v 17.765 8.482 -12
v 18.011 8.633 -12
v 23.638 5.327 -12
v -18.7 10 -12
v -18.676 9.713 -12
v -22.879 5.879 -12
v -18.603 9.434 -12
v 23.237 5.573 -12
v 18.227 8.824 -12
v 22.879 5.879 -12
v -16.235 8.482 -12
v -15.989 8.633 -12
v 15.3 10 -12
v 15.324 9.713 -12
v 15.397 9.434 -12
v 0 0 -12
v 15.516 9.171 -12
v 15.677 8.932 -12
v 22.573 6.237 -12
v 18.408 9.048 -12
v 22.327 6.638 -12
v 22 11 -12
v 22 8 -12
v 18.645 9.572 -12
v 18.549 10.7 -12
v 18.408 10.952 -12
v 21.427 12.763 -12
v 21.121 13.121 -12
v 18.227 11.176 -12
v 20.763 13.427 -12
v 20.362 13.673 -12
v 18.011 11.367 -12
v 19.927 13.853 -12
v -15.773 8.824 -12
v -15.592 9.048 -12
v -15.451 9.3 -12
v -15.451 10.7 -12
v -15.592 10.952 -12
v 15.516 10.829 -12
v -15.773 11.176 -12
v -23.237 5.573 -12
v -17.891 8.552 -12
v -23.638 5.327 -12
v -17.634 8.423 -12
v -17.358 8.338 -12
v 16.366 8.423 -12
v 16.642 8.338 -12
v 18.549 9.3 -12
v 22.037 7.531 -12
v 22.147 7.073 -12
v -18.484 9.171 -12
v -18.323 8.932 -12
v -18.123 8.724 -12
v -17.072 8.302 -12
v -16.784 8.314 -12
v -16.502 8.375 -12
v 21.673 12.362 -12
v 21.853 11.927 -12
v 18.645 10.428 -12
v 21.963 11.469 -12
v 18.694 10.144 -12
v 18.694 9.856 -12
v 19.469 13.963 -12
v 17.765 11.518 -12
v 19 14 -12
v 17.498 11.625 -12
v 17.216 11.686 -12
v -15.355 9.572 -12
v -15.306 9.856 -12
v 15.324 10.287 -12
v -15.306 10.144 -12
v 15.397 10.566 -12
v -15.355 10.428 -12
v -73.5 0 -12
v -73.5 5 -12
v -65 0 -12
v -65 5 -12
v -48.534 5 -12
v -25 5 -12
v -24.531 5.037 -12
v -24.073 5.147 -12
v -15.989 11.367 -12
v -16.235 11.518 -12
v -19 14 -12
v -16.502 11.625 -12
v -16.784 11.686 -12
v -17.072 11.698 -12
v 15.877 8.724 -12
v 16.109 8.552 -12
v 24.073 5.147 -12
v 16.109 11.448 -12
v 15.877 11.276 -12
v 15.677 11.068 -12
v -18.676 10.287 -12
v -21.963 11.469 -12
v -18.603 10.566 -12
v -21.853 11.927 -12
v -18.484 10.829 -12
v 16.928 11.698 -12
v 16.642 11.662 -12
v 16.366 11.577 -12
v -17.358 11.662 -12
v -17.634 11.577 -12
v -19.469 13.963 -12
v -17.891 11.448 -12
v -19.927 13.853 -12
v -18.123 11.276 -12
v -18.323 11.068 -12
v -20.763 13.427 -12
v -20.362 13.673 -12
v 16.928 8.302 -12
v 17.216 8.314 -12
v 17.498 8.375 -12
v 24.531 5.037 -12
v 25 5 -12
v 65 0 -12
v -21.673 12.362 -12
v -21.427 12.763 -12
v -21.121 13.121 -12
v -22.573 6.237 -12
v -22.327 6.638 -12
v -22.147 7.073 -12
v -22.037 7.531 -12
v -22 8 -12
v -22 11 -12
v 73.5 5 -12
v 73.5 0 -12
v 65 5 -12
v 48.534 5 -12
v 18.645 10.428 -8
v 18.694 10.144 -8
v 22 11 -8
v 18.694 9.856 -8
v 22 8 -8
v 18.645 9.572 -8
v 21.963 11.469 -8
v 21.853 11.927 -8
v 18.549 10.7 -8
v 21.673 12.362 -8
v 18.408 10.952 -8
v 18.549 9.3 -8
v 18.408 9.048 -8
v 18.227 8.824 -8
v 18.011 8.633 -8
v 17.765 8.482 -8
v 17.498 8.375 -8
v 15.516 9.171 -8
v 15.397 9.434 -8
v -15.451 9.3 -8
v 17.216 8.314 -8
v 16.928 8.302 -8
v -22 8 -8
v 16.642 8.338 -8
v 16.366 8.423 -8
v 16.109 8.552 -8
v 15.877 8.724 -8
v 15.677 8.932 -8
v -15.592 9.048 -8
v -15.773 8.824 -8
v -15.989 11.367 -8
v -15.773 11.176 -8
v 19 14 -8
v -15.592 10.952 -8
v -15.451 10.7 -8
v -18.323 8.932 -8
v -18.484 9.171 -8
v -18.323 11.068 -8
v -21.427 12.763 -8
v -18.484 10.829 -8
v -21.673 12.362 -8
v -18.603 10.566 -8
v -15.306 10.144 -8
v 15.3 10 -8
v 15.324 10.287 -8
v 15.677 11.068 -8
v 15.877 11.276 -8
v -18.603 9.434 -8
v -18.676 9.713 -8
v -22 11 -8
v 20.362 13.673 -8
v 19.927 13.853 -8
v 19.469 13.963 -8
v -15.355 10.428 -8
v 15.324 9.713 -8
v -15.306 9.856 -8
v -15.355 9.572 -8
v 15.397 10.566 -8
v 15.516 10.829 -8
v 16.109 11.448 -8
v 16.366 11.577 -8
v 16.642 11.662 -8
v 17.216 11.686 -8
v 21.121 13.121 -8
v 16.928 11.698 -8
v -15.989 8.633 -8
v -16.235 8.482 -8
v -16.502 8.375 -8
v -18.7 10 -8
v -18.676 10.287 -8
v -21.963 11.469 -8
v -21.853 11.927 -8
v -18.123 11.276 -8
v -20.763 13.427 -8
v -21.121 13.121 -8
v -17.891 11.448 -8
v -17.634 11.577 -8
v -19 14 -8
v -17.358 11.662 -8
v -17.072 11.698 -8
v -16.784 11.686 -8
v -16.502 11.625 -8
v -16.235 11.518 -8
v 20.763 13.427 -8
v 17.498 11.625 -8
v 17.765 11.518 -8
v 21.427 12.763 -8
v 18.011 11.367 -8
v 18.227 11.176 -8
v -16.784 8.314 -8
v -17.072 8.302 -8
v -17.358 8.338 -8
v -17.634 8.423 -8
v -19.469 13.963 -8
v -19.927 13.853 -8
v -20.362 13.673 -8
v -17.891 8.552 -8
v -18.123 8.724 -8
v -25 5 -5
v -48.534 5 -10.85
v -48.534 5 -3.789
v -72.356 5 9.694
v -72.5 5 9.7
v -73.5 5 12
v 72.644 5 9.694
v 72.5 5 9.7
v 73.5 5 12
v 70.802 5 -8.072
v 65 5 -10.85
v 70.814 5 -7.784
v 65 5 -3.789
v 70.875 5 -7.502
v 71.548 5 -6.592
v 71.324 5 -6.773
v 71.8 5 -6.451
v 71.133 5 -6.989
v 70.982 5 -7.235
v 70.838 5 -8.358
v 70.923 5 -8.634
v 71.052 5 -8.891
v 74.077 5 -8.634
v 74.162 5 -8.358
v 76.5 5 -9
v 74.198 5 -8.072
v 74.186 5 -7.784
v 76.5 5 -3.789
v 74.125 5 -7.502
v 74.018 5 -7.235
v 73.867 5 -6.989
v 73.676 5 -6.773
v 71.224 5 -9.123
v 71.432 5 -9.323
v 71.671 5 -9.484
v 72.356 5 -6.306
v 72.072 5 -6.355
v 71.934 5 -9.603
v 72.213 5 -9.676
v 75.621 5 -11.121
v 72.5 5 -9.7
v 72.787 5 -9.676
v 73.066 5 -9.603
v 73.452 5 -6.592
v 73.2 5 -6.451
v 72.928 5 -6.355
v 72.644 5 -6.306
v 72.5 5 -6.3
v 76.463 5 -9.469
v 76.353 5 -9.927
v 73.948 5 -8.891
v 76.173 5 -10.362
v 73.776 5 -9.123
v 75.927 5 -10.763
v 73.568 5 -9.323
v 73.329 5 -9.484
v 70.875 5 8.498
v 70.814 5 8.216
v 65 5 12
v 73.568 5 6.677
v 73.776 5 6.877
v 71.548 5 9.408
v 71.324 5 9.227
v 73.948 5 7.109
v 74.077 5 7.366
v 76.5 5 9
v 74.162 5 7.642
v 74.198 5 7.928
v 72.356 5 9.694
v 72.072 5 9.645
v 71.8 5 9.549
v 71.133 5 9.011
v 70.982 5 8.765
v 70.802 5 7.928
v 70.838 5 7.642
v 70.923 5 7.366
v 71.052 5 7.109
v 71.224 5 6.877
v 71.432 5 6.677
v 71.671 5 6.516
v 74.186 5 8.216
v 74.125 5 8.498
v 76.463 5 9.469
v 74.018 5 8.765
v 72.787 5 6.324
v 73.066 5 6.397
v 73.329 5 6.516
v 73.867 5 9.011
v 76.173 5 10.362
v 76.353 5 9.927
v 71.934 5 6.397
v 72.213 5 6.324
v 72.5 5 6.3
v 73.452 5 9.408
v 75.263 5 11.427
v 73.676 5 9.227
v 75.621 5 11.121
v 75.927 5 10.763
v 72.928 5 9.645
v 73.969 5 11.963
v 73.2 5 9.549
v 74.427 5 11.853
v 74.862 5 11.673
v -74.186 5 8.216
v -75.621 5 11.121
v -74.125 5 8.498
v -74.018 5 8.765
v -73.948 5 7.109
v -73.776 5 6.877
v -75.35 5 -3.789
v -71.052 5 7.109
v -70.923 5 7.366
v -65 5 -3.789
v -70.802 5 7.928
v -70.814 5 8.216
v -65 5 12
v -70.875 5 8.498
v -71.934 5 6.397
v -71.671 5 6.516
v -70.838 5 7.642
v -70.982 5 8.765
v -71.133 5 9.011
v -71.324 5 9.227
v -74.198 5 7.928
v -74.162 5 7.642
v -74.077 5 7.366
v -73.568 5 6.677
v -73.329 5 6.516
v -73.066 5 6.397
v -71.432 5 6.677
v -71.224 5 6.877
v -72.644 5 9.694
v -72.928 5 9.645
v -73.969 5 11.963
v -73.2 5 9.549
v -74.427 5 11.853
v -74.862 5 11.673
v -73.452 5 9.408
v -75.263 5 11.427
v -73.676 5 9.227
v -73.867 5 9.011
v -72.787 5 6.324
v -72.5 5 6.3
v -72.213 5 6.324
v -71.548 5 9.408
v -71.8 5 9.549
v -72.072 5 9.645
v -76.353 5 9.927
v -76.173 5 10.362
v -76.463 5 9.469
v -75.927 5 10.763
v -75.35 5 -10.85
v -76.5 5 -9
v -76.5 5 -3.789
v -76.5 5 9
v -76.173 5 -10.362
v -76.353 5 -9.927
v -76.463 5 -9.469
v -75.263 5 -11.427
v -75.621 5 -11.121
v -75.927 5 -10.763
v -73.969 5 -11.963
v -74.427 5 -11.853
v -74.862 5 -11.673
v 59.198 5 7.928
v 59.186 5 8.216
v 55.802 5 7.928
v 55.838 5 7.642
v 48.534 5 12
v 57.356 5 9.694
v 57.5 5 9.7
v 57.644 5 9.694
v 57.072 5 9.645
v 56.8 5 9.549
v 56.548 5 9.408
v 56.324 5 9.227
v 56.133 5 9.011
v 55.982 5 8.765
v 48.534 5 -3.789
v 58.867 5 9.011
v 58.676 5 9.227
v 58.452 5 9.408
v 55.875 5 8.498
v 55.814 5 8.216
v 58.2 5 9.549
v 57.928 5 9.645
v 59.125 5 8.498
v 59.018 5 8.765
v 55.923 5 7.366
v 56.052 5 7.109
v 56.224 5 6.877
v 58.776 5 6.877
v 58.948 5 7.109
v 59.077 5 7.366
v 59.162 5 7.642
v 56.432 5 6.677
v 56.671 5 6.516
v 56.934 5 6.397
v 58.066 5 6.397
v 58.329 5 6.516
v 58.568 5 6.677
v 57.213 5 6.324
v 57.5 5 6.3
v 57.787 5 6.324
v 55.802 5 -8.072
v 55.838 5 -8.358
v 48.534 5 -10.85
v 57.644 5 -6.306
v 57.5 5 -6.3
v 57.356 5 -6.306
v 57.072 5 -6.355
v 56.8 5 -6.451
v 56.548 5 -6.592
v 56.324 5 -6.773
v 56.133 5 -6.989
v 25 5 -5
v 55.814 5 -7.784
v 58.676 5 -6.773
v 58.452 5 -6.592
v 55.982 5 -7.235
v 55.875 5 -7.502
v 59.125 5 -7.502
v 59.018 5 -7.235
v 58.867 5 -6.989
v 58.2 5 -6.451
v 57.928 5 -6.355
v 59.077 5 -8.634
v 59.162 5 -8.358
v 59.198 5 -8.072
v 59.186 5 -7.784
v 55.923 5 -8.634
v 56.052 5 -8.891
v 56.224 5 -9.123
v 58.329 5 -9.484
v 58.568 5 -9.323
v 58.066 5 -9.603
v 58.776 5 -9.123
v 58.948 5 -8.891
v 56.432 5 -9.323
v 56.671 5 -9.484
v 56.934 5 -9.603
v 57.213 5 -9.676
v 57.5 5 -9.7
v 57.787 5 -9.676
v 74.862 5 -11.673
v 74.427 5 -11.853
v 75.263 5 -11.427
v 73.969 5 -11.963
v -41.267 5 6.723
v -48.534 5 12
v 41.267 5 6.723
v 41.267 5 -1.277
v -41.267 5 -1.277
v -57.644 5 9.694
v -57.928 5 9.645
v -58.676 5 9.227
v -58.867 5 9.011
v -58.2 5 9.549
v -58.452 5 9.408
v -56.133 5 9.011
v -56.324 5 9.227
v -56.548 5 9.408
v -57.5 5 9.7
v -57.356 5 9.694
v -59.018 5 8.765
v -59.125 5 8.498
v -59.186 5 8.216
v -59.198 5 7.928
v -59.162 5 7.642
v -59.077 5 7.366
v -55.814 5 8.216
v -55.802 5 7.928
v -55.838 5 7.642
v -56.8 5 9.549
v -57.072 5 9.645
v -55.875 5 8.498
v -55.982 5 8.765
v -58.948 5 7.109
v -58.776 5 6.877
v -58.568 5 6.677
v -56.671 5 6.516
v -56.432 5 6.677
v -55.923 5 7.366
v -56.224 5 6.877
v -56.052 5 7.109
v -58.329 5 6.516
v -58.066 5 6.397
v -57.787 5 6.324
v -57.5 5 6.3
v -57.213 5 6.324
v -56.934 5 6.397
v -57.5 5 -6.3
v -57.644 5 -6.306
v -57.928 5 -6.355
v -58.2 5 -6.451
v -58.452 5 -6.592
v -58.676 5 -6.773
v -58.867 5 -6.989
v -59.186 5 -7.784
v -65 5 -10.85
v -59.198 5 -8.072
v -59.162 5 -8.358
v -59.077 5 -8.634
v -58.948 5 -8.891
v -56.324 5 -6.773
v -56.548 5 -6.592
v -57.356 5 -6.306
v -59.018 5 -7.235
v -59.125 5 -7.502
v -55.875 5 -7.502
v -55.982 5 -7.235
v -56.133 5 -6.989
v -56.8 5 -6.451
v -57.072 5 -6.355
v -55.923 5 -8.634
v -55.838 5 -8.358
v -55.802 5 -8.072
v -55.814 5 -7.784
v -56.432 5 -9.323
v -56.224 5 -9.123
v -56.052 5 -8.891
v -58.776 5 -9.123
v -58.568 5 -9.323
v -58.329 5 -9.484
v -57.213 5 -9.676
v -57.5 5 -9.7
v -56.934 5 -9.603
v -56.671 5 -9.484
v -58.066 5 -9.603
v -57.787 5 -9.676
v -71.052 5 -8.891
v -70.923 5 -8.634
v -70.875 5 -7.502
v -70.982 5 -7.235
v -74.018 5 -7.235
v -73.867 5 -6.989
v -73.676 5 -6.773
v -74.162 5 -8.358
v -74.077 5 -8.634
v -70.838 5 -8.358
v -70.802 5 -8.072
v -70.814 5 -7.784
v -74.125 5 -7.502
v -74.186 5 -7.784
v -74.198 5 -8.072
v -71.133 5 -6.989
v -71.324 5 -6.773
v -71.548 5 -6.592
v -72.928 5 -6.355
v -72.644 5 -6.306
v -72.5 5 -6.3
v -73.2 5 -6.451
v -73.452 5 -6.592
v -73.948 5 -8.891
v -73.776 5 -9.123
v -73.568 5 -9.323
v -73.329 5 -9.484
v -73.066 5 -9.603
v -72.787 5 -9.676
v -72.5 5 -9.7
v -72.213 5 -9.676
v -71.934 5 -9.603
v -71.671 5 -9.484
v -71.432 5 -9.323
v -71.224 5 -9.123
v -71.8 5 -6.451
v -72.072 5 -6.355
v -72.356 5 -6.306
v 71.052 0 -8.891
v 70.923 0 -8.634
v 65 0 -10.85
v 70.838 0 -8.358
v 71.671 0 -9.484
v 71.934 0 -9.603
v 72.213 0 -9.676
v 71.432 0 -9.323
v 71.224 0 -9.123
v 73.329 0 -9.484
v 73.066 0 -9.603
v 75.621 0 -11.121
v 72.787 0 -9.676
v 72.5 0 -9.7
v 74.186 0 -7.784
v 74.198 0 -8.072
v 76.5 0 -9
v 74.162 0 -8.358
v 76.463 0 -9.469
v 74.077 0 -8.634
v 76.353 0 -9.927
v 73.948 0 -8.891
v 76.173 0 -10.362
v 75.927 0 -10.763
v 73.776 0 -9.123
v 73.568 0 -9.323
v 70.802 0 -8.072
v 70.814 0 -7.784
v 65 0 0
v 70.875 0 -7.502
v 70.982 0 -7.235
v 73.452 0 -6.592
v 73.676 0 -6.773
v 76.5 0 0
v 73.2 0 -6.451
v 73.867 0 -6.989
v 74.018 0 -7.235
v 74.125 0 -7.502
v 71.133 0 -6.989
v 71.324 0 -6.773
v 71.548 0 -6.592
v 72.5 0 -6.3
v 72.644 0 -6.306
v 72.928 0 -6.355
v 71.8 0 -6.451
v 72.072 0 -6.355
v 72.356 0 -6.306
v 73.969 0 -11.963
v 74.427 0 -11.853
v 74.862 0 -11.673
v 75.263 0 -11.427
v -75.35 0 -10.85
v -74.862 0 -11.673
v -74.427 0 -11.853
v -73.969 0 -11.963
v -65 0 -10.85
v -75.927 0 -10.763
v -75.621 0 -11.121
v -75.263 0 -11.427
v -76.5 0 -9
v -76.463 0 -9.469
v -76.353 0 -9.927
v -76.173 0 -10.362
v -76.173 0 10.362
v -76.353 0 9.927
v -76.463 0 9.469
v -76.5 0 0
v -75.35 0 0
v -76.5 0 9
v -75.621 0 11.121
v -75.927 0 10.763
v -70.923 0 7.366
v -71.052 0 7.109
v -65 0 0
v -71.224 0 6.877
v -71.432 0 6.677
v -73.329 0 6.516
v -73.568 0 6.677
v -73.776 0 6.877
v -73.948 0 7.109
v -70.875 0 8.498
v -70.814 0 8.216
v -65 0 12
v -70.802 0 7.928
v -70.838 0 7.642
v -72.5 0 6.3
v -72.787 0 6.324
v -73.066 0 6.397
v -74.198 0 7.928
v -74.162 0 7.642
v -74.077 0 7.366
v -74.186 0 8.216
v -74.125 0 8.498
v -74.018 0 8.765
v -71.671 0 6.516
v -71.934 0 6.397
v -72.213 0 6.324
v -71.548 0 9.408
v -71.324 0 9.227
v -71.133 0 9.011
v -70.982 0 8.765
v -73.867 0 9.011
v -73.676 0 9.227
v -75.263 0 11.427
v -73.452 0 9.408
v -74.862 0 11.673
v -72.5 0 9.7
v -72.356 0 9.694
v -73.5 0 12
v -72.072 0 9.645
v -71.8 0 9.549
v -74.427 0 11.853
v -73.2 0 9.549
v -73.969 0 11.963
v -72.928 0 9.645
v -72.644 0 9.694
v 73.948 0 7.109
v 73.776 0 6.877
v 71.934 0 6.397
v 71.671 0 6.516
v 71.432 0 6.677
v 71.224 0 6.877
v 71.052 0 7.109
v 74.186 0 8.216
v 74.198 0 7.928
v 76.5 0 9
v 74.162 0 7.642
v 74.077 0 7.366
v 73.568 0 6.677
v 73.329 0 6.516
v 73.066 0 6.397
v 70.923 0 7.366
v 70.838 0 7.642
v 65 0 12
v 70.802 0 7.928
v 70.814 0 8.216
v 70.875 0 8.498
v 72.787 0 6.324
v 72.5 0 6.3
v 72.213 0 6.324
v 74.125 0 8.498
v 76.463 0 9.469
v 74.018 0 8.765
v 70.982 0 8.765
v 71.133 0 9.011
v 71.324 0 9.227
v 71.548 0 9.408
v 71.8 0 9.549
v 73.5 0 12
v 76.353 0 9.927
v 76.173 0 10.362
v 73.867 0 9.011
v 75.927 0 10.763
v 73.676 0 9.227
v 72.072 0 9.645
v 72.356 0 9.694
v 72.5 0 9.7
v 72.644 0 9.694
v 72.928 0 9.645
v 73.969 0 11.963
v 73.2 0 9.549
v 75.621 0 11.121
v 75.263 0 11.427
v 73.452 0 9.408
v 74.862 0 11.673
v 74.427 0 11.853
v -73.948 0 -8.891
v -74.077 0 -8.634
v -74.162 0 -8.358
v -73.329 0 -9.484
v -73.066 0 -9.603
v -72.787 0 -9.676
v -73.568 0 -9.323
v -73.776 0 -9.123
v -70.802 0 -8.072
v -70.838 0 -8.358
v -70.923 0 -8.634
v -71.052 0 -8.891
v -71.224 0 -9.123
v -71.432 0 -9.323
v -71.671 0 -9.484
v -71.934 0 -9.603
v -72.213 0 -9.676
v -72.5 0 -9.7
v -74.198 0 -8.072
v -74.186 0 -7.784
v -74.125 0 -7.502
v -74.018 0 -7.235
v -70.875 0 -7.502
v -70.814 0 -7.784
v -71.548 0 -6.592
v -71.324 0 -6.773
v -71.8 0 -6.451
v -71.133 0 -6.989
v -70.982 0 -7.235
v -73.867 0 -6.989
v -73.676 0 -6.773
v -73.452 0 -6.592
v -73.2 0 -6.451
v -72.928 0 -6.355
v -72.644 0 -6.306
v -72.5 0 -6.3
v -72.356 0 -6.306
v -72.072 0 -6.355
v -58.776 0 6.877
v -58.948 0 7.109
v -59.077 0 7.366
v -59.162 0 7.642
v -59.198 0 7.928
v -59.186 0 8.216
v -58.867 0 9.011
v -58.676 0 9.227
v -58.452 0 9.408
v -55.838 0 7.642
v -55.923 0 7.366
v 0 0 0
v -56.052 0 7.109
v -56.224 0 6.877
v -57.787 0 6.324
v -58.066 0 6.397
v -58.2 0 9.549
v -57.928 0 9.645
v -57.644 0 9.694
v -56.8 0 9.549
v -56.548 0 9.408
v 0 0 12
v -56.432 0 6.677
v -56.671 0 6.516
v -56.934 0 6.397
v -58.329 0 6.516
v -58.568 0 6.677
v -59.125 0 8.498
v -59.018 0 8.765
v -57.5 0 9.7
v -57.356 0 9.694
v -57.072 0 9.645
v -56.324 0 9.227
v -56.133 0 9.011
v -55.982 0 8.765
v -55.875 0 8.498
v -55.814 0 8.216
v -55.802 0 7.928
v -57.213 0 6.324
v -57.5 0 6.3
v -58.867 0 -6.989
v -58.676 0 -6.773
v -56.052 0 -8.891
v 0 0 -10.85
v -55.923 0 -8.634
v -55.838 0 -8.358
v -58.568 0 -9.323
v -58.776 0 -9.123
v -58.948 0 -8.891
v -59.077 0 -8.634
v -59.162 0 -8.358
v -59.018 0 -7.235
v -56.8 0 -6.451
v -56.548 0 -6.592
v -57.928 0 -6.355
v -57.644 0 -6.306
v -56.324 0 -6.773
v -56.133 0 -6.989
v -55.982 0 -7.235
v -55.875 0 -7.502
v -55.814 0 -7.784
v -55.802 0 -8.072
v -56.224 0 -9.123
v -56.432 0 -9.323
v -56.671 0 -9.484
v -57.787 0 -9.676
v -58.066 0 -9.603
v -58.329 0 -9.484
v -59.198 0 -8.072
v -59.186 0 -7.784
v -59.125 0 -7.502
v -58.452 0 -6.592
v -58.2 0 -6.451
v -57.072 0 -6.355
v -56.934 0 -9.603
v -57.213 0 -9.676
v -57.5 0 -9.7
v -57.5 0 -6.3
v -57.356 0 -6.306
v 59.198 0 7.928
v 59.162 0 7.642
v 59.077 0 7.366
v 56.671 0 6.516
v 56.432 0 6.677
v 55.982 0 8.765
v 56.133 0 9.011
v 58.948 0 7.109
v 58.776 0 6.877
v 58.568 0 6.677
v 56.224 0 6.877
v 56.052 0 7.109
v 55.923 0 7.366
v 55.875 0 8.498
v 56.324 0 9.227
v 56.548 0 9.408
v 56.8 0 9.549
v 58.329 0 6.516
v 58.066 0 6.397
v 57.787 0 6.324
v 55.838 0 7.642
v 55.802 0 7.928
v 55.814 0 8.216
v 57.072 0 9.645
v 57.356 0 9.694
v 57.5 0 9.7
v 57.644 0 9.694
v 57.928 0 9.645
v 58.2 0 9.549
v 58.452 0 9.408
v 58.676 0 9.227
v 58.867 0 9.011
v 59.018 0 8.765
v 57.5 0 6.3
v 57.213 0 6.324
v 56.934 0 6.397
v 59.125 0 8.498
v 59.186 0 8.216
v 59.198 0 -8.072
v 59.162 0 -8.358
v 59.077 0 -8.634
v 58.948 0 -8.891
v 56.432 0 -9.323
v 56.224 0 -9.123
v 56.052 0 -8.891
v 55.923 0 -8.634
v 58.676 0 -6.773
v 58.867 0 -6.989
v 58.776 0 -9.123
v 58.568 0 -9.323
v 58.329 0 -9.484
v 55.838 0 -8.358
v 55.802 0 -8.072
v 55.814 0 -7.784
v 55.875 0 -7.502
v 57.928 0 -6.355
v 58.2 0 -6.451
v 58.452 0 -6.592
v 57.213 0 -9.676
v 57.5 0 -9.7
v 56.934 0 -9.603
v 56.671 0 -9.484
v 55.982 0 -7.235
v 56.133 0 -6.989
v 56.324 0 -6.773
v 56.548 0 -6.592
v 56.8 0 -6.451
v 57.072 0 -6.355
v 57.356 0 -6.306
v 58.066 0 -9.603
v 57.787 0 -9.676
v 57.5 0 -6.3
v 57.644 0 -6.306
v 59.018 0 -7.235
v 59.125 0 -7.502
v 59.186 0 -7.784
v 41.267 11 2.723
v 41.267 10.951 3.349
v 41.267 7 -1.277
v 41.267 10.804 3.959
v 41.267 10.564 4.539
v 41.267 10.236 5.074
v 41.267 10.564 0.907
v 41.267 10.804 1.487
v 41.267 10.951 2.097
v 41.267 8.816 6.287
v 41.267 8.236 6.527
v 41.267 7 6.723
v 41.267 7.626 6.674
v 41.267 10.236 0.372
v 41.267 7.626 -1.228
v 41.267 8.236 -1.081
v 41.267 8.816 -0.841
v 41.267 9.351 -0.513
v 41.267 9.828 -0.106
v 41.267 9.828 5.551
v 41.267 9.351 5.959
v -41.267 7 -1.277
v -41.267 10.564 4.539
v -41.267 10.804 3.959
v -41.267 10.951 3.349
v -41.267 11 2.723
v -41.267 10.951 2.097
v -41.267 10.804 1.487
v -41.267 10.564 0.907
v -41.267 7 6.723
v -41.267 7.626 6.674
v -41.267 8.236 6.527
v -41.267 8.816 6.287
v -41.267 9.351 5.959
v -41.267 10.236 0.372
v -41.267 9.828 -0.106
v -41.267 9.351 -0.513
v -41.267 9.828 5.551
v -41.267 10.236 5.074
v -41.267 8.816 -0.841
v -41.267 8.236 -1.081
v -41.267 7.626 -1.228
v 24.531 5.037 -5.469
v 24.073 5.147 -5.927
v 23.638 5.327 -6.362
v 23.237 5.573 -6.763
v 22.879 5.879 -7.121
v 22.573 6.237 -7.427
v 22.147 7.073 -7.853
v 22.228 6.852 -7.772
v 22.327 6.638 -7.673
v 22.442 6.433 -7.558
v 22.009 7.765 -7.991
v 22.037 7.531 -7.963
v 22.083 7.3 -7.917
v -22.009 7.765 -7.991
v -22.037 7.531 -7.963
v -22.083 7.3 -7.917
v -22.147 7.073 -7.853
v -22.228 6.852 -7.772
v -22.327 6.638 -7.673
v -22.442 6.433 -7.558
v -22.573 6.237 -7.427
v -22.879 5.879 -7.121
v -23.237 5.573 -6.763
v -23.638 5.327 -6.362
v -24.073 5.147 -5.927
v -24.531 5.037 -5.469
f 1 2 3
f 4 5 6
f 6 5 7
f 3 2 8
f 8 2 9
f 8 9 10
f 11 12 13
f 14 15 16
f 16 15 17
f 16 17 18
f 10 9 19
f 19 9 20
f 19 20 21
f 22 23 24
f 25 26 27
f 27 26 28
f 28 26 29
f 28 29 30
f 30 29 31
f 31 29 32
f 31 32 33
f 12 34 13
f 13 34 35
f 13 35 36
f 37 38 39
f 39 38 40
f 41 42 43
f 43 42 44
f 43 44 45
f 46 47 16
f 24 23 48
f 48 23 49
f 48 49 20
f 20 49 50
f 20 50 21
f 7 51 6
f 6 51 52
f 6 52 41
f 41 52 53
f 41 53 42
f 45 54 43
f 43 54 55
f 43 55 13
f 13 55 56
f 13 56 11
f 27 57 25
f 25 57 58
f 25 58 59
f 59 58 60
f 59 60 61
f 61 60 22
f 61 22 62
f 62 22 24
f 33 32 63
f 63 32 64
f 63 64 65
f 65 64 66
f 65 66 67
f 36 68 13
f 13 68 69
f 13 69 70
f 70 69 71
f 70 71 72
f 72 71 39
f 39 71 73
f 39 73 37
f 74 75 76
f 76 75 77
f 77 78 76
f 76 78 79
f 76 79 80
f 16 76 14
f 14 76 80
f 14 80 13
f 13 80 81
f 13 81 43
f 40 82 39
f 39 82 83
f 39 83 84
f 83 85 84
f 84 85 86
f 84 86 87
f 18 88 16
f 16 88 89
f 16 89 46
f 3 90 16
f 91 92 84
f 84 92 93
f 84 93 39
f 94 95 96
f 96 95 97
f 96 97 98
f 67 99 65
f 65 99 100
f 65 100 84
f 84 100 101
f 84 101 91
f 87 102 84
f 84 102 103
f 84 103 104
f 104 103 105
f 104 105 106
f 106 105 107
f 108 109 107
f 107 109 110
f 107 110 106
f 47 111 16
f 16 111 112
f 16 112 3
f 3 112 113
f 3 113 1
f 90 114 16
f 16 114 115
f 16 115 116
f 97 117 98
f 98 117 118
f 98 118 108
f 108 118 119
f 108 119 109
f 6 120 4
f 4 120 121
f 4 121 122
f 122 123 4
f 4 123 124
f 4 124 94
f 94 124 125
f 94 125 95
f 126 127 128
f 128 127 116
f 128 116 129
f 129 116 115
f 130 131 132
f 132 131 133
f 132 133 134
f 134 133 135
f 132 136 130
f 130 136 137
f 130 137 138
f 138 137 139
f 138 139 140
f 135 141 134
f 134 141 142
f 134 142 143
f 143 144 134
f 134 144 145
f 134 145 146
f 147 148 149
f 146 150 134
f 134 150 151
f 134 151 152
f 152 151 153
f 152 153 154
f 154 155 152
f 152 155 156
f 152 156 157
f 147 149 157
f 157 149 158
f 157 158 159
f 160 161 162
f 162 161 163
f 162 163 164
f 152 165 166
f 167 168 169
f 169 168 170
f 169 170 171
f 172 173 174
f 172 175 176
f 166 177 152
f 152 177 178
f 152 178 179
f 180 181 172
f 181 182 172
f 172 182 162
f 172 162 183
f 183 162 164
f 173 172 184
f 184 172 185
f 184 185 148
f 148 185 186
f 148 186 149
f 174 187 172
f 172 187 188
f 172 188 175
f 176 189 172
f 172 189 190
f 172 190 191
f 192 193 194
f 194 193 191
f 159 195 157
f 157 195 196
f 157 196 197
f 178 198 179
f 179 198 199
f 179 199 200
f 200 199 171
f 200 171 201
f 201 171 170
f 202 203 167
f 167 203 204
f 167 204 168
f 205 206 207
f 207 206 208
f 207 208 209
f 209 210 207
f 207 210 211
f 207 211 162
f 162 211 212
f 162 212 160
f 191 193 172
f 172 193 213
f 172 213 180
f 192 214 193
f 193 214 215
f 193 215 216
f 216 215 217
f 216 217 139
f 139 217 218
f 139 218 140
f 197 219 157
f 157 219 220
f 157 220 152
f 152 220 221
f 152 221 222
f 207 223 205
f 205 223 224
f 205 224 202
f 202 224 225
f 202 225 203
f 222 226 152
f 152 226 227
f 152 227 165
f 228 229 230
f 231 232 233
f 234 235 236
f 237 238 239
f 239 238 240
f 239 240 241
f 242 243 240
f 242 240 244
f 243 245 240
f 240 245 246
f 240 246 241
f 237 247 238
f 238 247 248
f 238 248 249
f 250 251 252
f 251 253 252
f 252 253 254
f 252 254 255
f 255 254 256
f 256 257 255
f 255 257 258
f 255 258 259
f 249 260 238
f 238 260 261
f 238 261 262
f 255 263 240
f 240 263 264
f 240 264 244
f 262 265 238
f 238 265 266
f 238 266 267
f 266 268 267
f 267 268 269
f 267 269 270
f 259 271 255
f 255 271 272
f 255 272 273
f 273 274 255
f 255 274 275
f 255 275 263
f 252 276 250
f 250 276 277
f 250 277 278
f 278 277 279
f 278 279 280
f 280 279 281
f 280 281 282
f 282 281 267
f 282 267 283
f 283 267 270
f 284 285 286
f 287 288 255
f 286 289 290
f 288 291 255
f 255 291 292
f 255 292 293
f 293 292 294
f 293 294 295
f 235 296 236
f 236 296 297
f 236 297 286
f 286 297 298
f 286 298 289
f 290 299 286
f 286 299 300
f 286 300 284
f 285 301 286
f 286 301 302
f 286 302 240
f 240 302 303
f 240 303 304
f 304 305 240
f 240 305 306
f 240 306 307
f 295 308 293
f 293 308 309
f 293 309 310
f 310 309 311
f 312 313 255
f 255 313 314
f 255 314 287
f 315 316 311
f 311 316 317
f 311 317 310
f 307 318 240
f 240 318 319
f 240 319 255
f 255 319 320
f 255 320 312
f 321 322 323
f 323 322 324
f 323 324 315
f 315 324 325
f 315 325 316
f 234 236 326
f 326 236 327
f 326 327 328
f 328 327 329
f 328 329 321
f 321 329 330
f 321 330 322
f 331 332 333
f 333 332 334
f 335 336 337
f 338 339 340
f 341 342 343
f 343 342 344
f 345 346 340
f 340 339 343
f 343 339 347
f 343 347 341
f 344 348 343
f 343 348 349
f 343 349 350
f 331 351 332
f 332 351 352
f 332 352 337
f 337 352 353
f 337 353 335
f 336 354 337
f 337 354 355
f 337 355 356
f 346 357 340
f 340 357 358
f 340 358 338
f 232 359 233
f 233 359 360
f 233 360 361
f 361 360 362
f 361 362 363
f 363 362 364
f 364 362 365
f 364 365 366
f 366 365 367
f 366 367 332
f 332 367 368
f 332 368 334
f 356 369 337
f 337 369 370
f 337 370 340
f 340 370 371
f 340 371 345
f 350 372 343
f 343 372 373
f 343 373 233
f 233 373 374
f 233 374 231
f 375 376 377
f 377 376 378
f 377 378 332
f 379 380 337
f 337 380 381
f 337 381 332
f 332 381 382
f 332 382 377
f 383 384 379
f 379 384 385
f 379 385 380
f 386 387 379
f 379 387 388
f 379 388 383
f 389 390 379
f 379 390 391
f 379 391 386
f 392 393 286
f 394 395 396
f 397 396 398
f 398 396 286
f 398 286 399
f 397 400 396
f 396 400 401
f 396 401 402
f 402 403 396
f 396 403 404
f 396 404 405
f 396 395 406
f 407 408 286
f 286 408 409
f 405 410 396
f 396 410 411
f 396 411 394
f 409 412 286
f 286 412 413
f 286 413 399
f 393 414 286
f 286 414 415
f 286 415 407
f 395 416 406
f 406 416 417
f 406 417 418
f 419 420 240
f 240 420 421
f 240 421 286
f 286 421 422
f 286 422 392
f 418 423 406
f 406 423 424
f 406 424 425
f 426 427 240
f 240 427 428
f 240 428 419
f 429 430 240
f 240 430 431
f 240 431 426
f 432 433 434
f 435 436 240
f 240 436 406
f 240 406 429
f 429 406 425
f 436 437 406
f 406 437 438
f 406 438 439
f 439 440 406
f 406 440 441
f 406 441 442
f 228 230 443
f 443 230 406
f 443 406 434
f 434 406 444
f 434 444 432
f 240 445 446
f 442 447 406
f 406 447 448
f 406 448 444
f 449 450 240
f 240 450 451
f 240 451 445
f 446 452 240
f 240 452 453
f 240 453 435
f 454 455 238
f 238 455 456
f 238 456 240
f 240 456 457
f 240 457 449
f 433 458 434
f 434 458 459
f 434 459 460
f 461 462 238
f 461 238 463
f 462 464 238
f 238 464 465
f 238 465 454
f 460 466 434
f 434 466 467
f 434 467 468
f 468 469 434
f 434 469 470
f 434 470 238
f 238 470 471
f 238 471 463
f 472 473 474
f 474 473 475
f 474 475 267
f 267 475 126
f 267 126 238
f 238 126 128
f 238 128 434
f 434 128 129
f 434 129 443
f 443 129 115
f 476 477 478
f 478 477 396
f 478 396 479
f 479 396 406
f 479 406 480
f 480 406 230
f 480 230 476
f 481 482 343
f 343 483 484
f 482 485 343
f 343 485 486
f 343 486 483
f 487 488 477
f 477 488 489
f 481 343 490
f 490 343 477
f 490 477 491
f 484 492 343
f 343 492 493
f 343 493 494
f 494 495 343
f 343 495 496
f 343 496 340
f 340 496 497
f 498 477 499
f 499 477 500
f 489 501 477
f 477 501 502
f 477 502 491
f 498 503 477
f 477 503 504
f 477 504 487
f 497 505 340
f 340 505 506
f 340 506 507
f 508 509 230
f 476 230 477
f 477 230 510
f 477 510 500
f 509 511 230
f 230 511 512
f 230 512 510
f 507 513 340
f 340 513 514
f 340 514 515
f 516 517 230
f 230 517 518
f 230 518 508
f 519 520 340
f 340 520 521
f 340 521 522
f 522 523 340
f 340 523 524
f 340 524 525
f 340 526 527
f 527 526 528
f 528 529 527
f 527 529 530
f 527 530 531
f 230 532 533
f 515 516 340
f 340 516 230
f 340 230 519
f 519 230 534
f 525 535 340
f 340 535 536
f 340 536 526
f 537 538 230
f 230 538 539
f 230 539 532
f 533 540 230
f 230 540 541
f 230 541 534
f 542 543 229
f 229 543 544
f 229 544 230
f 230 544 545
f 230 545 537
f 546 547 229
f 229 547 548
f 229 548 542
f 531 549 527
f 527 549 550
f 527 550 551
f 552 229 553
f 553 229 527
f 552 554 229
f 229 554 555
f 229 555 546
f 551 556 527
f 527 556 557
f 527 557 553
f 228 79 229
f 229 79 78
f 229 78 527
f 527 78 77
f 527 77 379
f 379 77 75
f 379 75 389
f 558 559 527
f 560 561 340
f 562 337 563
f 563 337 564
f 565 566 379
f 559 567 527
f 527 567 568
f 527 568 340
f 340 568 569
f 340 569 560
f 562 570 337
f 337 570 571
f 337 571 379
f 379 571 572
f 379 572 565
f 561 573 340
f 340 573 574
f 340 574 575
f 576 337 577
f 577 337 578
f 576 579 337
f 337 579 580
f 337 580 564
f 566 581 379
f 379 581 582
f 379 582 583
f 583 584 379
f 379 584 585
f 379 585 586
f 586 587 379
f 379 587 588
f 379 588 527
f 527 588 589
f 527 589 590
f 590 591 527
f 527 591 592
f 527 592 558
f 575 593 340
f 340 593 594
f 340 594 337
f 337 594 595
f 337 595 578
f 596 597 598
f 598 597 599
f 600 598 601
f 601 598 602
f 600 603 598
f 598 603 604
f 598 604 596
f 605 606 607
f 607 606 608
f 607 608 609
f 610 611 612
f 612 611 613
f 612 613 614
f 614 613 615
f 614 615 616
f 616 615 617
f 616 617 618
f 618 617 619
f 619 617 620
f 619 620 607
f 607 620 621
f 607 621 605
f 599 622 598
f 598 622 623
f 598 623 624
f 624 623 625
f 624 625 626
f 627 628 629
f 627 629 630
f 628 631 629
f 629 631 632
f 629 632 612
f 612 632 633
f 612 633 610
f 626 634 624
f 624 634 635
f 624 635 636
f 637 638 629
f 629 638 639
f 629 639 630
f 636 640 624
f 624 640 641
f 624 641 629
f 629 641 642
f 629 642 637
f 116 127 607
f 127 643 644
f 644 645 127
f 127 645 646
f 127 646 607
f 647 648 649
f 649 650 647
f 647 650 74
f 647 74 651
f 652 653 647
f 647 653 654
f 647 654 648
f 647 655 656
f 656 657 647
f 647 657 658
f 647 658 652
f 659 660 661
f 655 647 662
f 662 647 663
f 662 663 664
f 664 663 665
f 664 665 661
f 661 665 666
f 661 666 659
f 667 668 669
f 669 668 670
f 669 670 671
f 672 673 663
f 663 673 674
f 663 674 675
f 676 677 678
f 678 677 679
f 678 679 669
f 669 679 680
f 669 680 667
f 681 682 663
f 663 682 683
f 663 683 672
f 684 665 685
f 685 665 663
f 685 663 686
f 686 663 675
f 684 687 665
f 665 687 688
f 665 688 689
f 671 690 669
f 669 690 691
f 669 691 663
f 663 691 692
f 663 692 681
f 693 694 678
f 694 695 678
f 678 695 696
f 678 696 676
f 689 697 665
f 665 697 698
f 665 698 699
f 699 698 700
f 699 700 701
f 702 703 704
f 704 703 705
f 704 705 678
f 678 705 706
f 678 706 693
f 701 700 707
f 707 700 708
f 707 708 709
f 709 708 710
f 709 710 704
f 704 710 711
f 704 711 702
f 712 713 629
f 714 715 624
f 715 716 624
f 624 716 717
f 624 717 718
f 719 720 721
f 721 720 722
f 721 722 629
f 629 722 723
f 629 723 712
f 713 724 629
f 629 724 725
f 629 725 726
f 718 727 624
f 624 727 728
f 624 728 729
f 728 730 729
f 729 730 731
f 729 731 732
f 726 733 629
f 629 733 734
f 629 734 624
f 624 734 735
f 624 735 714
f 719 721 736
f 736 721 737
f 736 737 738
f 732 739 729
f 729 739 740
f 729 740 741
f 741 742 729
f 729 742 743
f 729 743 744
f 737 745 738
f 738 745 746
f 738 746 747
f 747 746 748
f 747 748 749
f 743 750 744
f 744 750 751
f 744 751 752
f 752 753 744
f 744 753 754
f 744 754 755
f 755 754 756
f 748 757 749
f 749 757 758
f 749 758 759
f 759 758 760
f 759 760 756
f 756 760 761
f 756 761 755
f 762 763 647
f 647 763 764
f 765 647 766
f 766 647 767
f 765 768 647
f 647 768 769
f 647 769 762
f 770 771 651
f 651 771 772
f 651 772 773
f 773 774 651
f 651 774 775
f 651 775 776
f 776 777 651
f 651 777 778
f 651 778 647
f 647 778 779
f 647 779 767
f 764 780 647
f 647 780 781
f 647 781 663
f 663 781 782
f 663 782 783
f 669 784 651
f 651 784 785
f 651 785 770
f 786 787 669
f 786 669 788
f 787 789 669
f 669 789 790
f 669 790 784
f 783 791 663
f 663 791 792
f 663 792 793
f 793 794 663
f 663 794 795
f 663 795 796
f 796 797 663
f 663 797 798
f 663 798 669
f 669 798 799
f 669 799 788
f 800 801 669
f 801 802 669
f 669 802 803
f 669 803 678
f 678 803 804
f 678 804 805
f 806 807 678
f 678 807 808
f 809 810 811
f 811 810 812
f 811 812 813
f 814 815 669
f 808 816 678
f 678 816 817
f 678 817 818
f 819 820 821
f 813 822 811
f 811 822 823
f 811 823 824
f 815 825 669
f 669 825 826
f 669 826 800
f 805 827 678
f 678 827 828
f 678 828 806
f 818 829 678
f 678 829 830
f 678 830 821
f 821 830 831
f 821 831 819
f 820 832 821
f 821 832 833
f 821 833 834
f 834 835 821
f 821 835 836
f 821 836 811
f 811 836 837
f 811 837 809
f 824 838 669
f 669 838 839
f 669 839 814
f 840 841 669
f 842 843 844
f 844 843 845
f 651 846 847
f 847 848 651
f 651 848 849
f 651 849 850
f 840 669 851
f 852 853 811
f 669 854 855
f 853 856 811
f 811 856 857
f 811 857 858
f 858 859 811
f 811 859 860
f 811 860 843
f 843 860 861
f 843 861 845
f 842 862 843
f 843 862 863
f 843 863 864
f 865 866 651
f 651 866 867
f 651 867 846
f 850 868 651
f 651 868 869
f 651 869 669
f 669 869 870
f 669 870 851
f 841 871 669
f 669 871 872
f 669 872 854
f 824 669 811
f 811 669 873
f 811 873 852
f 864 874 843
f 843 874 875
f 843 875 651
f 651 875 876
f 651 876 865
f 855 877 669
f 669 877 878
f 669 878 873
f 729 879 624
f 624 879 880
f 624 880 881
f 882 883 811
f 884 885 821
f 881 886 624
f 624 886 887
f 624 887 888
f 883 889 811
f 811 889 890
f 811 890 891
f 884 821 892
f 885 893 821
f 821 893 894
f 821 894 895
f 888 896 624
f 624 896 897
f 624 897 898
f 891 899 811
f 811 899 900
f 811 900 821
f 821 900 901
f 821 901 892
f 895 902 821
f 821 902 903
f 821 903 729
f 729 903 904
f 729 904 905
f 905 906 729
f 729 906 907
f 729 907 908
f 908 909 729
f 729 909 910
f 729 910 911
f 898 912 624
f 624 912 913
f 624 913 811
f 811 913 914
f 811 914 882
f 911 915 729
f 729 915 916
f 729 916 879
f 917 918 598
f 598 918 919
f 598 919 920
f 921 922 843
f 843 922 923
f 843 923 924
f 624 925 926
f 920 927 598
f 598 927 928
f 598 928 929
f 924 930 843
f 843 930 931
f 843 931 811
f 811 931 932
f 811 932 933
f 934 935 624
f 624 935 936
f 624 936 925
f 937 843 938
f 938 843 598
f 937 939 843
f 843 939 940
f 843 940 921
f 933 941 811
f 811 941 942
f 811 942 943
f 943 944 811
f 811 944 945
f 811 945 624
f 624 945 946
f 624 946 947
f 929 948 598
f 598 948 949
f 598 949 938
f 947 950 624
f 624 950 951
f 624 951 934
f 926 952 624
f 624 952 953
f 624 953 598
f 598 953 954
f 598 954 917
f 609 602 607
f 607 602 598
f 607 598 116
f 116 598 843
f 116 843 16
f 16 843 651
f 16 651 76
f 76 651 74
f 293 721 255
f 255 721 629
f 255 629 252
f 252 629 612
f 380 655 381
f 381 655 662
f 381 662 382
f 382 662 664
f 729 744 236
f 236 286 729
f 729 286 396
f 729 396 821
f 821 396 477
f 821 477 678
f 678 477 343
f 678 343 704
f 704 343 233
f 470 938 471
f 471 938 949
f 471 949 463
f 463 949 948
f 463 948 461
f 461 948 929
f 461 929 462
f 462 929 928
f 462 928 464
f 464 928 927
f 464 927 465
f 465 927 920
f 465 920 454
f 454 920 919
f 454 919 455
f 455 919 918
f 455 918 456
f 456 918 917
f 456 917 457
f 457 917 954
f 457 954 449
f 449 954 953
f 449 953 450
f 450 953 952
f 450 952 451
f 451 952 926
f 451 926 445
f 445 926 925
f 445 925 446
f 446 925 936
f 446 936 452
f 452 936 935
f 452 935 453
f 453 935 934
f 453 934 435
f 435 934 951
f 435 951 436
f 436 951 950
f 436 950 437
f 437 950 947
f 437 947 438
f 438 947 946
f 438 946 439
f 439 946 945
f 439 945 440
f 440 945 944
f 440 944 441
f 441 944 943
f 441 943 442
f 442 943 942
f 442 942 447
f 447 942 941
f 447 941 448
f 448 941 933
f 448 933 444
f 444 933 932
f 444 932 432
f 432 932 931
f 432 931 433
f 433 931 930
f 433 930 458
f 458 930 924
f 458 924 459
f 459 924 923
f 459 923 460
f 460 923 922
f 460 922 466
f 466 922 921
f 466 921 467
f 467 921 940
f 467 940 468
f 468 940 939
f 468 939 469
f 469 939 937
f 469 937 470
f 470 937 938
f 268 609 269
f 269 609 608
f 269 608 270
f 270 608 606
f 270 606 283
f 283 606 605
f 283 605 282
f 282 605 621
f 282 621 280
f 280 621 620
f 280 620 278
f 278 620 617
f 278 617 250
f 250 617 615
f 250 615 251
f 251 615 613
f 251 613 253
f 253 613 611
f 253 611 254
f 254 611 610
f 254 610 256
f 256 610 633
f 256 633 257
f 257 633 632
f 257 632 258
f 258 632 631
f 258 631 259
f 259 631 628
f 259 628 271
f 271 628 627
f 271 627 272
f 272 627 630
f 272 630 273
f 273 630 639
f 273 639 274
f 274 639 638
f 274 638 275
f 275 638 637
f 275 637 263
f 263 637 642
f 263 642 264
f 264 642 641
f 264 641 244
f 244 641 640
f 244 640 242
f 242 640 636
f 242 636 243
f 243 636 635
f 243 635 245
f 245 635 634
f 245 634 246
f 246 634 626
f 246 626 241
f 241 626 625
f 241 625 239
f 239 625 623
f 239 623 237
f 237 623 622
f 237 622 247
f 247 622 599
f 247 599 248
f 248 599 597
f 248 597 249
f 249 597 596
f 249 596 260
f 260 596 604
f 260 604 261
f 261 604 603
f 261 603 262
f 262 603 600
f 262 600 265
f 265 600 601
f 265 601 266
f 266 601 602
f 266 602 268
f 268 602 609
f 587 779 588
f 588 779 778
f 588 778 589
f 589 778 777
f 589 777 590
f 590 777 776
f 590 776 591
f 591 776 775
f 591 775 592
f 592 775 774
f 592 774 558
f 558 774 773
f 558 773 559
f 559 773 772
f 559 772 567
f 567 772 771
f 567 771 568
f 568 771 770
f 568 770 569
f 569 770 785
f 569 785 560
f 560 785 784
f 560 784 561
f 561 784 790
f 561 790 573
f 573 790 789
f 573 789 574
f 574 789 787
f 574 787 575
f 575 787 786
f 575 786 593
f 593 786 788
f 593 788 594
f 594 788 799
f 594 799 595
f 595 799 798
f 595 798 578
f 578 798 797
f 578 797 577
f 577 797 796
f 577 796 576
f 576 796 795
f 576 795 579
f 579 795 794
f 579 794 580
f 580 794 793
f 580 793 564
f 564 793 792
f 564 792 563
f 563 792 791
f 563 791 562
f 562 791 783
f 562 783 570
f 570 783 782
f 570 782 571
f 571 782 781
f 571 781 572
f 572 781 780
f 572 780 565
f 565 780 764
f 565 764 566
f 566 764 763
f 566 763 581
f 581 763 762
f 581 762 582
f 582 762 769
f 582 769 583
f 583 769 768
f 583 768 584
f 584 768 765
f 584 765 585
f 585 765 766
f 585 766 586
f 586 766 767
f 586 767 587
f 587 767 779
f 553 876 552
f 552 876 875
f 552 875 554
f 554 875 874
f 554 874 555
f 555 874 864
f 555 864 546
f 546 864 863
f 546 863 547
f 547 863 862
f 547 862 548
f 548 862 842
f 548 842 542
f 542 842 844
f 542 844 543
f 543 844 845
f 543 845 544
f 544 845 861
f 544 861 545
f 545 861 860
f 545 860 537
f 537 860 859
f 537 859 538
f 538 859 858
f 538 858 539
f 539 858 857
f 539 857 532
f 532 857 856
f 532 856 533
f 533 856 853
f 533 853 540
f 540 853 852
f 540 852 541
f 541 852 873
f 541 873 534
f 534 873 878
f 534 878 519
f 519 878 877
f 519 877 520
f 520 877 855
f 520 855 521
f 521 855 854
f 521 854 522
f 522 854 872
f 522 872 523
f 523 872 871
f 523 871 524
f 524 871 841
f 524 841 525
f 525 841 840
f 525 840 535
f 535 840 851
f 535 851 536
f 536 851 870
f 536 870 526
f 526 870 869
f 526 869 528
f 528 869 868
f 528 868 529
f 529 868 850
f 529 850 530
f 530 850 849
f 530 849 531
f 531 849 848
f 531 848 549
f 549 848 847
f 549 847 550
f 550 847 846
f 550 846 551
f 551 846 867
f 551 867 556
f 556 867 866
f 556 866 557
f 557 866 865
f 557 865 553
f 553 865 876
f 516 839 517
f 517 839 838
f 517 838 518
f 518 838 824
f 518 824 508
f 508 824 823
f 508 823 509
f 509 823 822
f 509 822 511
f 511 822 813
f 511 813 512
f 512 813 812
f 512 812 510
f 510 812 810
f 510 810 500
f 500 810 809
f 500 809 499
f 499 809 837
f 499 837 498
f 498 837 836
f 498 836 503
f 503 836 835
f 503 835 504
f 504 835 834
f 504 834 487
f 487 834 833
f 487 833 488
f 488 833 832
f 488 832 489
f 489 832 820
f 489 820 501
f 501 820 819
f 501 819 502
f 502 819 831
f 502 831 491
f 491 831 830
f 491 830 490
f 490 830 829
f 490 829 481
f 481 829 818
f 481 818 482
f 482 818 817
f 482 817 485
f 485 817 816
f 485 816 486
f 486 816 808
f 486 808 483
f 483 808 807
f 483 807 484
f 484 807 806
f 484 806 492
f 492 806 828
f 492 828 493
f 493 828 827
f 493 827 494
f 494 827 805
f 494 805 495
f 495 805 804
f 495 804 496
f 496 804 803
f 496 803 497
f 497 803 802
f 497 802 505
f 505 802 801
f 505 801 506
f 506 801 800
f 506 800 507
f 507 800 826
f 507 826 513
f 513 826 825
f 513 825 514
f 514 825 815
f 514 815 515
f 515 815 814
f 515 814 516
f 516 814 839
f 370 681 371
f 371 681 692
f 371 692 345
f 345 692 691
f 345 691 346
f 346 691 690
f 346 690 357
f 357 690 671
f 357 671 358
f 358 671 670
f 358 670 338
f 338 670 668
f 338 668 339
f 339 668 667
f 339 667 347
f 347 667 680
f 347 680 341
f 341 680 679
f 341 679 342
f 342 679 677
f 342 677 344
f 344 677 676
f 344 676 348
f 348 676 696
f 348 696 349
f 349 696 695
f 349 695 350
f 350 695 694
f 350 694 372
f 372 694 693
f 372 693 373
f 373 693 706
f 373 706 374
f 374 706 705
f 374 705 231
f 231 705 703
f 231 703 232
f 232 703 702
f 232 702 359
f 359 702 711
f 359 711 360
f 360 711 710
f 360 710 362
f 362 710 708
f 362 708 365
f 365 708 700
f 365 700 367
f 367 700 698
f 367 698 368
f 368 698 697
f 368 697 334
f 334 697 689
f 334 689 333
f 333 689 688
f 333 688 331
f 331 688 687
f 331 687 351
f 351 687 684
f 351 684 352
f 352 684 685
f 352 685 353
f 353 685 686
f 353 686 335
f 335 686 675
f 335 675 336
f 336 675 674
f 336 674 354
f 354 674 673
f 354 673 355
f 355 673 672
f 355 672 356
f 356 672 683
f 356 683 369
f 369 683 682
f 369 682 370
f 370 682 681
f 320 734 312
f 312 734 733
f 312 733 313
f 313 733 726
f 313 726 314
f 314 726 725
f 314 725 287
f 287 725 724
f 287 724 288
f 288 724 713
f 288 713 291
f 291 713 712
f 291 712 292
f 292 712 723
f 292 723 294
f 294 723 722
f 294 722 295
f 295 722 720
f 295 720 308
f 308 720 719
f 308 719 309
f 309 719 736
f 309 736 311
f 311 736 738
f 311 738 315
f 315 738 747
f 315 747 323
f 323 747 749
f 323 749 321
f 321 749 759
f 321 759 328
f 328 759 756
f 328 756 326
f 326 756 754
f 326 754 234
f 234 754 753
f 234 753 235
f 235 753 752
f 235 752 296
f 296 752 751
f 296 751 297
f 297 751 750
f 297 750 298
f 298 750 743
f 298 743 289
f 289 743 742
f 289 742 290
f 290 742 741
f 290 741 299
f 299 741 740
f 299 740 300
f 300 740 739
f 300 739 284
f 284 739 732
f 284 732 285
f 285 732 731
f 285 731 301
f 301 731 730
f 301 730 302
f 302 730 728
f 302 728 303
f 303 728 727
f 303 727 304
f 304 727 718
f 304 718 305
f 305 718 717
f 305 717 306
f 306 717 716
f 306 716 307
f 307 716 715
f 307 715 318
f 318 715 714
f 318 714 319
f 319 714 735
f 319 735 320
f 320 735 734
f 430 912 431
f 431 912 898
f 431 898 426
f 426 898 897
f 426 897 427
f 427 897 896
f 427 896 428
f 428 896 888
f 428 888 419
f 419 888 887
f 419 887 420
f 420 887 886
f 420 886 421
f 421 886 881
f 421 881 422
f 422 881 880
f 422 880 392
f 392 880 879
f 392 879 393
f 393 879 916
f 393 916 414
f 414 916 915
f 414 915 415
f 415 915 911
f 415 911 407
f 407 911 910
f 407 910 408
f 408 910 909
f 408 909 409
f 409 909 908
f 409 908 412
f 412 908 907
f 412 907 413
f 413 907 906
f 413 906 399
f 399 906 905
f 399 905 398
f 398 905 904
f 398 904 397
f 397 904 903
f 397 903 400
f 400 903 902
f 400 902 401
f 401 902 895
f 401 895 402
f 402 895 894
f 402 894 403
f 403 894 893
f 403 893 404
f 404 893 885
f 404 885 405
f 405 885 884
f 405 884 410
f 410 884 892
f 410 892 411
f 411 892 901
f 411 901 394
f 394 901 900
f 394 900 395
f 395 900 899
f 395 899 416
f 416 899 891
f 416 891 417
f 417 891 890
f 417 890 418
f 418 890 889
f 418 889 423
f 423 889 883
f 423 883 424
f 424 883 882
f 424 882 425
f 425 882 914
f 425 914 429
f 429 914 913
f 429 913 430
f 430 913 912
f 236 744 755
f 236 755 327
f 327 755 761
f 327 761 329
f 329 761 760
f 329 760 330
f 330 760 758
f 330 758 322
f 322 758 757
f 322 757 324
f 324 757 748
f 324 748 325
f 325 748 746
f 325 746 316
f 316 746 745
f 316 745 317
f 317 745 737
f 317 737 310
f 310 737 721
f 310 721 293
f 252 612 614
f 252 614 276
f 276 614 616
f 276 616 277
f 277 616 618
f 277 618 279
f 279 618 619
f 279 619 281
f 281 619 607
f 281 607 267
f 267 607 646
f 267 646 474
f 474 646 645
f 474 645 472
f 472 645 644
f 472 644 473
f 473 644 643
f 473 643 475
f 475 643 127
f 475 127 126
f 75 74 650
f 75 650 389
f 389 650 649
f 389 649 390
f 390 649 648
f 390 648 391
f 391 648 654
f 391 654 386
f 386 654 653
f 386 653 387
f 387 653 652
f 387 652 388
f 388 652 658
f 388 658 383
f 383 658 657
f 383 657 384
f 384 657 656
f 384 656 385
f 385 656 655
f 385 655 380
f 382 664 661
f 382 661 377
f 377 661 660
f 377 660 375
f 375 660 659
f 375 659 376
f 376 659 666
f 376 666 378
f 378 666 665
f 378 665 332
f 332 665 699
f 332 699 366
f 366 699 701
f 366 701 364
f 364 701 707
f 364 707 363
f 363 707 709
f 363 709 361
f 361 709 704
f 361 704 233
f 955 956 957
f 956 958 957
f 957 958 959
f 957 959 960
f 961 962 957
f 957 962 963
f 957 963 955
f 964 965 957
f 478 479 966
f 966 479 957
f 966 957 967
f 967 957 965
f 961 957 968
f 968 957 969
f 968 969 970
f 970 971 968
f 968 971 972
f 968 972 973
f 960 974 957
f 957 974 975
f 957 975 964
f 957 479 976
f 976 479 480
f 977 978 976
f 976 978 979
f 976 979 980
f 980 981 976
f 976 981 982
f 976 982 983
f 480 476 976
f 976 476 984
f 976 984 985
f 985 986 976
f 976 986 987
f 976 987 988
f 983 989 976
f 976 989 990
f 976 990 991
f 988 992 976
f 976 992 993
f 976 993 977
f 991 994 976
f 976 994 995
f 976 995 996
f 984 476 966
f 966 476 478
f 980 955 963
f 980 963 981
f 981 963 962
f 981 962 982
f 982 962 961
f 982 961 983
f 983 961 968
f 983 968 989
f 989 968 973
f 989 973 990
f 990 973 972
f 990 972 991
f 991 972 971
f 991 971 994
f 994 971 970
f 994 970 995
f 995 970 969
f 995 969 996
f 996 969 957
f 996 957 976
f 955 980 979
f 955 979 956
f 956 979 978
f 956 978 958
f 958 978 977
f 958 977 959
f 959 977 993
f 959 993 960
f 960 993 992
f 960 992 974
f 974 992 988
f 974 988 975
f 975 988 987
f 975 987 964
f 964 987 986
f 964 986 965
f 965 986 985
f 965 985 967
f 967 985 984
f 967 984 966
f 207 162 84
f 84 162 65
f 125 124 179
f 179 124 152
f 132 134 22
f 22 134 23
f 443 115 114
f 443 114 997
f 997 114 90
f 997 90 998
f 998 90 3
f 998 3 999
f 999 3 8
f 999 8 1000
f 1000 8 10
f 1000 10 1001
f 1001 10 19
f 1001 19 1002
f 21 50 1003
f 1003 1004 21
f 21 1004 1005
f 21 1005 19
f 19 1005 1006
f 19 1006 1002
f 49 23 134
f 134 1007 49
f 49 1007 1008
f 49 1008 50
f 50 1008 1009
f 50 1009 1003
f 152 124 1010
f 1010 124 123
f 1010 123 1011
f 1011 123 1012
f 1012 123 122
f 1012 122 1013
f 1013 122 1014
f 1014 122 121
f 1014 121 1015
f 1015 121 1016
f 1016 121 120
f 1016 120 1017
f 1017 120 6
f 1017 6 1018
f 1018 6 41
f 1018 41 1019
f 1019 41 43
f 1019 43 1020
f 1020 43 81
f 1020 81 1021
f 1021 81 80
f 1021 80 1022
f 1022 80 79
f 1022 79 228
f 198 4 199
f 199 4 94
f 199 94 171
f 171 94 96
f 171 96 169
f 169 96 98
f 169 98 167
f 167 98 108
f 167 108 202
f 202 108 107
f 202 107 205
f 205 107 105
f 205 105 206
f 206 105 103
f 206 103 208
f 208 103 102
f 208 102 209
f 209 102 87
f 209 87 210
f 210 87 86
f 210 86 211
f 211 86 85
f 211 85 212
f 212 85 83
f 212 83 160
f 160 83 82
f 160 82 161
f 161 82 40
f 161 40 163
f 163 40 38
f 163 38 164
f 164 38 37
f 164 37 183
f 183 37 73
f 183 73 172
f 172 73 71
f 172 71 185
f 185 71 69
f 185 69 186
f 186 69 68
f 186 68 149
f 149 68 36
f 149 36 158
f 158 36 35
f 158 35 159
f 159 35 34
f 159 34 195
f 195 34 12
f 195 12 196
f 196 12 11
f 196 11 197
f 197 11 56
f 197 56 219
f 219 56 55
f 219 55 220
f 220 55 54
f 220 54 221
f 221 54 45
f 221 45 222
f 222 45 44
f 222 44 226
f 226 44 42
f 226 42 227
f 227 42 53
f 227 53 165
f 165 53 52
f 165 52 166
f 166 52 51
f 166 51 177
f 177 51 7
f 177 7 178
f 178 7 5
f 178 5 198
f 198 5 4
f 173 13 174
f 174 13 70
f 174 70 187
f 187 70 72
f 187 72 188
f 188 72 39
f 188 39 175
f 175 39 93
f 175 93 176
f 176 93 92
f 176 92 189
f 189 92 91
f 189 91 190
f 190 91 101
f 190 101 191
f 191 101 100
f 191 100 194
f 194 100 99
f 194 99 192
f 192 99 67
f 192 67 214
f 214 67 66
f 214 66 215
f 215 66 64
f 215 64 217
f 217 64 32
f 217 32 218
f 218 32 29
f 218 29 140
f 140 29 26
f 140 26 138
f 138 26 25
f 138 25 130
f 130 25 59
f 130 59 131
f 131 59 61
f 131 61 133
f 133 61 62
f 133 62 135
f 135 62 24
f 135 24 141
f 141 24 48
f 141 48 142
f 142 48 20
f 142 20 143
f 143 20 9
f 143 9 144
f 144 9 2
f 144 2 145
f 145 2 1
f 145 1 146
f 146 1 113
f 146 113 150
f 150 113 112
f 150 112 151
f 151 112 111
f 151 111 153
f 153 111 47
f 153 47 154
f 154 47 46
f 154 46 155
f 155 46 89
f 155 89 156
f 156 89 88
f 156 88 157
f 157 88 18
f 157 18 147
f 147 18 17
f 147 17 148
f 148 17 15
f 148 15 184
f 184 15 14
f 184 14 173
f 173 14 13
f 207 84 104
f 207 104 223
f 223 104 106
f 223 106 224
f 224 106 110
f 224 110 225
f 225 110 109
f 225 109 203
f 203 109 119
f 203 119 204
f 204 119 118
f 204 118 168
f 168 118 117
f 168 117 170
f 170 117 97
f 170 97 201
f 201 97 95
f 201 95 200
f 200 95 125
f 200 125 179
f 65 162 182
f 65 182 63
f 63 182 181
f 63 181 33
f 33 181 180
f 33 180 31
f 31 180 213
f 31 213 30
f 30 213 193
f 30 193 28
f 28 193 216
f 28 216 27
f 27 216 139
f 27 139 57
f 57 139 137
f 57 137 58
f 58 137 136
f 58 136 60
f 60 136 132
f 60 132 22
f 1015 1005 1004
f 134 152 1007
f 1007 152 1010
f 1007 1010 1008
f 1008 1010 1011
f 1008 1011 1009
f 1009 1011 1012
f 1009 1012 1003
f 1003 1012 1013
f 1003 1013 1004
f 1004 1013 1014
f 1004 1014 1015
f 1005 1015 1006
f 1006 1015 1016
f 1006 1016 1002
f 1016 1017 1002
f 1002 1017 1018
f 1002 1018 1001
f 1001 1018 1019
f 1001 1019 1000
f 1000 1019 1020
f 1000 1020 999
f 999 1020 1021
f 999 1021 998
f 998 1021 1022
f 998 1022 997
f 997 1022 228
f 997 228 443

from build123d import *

# Parameters (mm, degrees)
SKETCH1_R           = 1.7
BOSS_EXTRUDE1_DEPTH = 5
FILLET1_R           = 3
SKETCH2_W           = 82.534528382
SKETCH2_H           = 8
BOSS_EXTRUDE2_DEPTH = 6
FILLET2_R           = 4
SKETCH3_W           = 22
SKETCH3_H           = 9
BOSS_EXTRUDE3_DEPTH = 4
FILLET3_R           = 3
SKETCH4_R           = 1.7
CUT_EXTRUDE2_DEPTH  = 4
FILLET4_R           = 3
FILLET5_R           = 3


with BuildPart() as part:
    # Sketch1 → Boss-Extrude1 (new body)
    with BuildSketch(Plane(origin=(0, 0, 0), x_dir=(1, 0, 0), z_dir=(0, 1, 0))):
        Polygon((-76.5, -12), (-53.5, -12), (53.5, -12), (76.5, -12), (76.5, 12), (53.5, 12), (-53.5, 12), (-76.5, 12), align=None)
        with Locations(Location((-72.5, 8, 0), (0, 0, 270))):
            Circle(SKETCH1_R, mode=Mode.SUBTRACT)
        with Locations(Location((-57.5, 8, 0), (0, 0, 270))):
            Circle(SKETCH1_R, mode=Mode.SUBTRACT)
        with Locations(Location((-57.5, -8, 0), (0, 0, 270))):
            Circle(SKETCH1_R, mode=Mode.SUBTRACT)
        with Locations(Location((-72.5, -8, 0), (0, 0, 270))):
            Circle(SKETCH1_R, mode=Mode.SUBTRACT)
        with Locations(Location((57.5, 8, 0), (0, 0, 270))):
            Circle(SKETCH1_R, mode=Mode.SUBTRACT)
        with Locations(Location((72.5, 8, 0), (0, 0, 270))):
            Circle(SKETCH1_R, mode=Mode.SUBTRACT)
        with Locations(Location((72.5, -8, 0), (0, 0, 270))):
            Circle(SKETCH1_R, mode=Mode.SUBTRACT)
        with Locations(Location((57.5, -8, 0), (0, 0, 270))):
            Circle(SKETCH1_R, mode=Mode.SUBTRACT)
    extrude(amount=BOSS_EXTRUDE1_DEPTH)

    # Fillet1
    fillet1_edges = [part.edges().sort_by_distance(p)[0] for p in [
        (-76.5, 2.5, 12),
        (-76.5, 2.5, -12),
        (76.5, 2.5, -12),
        (76.5, 2.5, 12),
    ]]
    fillet(fillet1_edges, radius=FILLET1_R)

    # Sketch2 → Boss-Extrude2 (add)
    with BuildSketch(Plane(origin=(0, 5, 0), x_dir=(1, 0, 0), z_dir=(0, 1, 0))):
        with Locations((0, -2.722781506)):
            Rectangle(SKETCH2_W, SKETCH2_H)
    extrude(amount=BOSS_EXTRUDE2_DEPTH)

    # Fillet2
    fillet2_edges = [part.edges().sort_by_distance(p)[0] for p in [
        (0, 11, 6.722781506),
        (0, 11, -1.277218494),
    ]]
    fillet(fillet2_edges, radius=FILLET2_R - 0.0001)  # a hair under: the kernel refuses the full size

    # Sketch3 → Boss-Extrude3 (add)
    with BuildSketch(Plane(origin=(0, 0, -12), x_dir=(-1, 0, 0), z_dir=(0, 0, -1))):
        with Locations((-11, 9.5)):
            Rectangle(SKETCH3_W, SKETCH3_H)
        with Locations((11, 9.5)):
            Rectangle(SKETCH3_W, SKETCH3_H)
    extrude(amount=-BOSS_EXTRUDE3_DEPTH)

    # Fillet3
    fillet3_edges = [part.edges().sort_by_distance(p)[0] for p in [
        (-22, 5, -10),
        (22, 5, -10),
    ]]
    fillet(fillet3_edges, radius=FILLET3_R)

    # Sketch4 → Cut-Extrude2 (cut)
    with BuildSketch(Plane(origin=(0, 0, -12), x_dir=(-1, 0, 0), z_dir=(0, 0, -1))):
        with BuildLine():
            ThreePointArc((-15.3, 10), (-15.797918472, 11.202081528), (-17, 11.7))
            Line((-17, 11.7), (-17, 10))
            Line((-17, 10), (-18.7, 10))
            ThreePointArc((-18.7, 10), (-17, 8.3), (-15.3, 10))
        make_face()
        with BuildLine():
            Line((-17, 10), (-17, 11.7))
            ThreePointArc((-17, 11.7), (-18.202081528, 11.202081528), (-18.7, 10))
            Line((-18.7, 10), (-17, 10))
        make_face()
        with Locations((17, 10)):
            Circle(SKETCH4_R)
    extrude(amount=-CUT_EXTRUDE2_DEPTH, mode=Mode.SUBTRACT)

    # Fillet4
    fillet4_edges = [part.edges().sort_by_distance(p)[0] for p in [
        (22, 14, -10),
        (-22, 14, -10),
    ]]
    fillet(fillet4_edges, radius=FILLET4_R)

    # Fillet5
    fillet5_edges = [part.edges().sort_by_distance(p)[0] for p in [
        (0, 5, -8),
    ]]
    fillet(fillet5_edges, radius=FILLET5_R)


solid = part.part
